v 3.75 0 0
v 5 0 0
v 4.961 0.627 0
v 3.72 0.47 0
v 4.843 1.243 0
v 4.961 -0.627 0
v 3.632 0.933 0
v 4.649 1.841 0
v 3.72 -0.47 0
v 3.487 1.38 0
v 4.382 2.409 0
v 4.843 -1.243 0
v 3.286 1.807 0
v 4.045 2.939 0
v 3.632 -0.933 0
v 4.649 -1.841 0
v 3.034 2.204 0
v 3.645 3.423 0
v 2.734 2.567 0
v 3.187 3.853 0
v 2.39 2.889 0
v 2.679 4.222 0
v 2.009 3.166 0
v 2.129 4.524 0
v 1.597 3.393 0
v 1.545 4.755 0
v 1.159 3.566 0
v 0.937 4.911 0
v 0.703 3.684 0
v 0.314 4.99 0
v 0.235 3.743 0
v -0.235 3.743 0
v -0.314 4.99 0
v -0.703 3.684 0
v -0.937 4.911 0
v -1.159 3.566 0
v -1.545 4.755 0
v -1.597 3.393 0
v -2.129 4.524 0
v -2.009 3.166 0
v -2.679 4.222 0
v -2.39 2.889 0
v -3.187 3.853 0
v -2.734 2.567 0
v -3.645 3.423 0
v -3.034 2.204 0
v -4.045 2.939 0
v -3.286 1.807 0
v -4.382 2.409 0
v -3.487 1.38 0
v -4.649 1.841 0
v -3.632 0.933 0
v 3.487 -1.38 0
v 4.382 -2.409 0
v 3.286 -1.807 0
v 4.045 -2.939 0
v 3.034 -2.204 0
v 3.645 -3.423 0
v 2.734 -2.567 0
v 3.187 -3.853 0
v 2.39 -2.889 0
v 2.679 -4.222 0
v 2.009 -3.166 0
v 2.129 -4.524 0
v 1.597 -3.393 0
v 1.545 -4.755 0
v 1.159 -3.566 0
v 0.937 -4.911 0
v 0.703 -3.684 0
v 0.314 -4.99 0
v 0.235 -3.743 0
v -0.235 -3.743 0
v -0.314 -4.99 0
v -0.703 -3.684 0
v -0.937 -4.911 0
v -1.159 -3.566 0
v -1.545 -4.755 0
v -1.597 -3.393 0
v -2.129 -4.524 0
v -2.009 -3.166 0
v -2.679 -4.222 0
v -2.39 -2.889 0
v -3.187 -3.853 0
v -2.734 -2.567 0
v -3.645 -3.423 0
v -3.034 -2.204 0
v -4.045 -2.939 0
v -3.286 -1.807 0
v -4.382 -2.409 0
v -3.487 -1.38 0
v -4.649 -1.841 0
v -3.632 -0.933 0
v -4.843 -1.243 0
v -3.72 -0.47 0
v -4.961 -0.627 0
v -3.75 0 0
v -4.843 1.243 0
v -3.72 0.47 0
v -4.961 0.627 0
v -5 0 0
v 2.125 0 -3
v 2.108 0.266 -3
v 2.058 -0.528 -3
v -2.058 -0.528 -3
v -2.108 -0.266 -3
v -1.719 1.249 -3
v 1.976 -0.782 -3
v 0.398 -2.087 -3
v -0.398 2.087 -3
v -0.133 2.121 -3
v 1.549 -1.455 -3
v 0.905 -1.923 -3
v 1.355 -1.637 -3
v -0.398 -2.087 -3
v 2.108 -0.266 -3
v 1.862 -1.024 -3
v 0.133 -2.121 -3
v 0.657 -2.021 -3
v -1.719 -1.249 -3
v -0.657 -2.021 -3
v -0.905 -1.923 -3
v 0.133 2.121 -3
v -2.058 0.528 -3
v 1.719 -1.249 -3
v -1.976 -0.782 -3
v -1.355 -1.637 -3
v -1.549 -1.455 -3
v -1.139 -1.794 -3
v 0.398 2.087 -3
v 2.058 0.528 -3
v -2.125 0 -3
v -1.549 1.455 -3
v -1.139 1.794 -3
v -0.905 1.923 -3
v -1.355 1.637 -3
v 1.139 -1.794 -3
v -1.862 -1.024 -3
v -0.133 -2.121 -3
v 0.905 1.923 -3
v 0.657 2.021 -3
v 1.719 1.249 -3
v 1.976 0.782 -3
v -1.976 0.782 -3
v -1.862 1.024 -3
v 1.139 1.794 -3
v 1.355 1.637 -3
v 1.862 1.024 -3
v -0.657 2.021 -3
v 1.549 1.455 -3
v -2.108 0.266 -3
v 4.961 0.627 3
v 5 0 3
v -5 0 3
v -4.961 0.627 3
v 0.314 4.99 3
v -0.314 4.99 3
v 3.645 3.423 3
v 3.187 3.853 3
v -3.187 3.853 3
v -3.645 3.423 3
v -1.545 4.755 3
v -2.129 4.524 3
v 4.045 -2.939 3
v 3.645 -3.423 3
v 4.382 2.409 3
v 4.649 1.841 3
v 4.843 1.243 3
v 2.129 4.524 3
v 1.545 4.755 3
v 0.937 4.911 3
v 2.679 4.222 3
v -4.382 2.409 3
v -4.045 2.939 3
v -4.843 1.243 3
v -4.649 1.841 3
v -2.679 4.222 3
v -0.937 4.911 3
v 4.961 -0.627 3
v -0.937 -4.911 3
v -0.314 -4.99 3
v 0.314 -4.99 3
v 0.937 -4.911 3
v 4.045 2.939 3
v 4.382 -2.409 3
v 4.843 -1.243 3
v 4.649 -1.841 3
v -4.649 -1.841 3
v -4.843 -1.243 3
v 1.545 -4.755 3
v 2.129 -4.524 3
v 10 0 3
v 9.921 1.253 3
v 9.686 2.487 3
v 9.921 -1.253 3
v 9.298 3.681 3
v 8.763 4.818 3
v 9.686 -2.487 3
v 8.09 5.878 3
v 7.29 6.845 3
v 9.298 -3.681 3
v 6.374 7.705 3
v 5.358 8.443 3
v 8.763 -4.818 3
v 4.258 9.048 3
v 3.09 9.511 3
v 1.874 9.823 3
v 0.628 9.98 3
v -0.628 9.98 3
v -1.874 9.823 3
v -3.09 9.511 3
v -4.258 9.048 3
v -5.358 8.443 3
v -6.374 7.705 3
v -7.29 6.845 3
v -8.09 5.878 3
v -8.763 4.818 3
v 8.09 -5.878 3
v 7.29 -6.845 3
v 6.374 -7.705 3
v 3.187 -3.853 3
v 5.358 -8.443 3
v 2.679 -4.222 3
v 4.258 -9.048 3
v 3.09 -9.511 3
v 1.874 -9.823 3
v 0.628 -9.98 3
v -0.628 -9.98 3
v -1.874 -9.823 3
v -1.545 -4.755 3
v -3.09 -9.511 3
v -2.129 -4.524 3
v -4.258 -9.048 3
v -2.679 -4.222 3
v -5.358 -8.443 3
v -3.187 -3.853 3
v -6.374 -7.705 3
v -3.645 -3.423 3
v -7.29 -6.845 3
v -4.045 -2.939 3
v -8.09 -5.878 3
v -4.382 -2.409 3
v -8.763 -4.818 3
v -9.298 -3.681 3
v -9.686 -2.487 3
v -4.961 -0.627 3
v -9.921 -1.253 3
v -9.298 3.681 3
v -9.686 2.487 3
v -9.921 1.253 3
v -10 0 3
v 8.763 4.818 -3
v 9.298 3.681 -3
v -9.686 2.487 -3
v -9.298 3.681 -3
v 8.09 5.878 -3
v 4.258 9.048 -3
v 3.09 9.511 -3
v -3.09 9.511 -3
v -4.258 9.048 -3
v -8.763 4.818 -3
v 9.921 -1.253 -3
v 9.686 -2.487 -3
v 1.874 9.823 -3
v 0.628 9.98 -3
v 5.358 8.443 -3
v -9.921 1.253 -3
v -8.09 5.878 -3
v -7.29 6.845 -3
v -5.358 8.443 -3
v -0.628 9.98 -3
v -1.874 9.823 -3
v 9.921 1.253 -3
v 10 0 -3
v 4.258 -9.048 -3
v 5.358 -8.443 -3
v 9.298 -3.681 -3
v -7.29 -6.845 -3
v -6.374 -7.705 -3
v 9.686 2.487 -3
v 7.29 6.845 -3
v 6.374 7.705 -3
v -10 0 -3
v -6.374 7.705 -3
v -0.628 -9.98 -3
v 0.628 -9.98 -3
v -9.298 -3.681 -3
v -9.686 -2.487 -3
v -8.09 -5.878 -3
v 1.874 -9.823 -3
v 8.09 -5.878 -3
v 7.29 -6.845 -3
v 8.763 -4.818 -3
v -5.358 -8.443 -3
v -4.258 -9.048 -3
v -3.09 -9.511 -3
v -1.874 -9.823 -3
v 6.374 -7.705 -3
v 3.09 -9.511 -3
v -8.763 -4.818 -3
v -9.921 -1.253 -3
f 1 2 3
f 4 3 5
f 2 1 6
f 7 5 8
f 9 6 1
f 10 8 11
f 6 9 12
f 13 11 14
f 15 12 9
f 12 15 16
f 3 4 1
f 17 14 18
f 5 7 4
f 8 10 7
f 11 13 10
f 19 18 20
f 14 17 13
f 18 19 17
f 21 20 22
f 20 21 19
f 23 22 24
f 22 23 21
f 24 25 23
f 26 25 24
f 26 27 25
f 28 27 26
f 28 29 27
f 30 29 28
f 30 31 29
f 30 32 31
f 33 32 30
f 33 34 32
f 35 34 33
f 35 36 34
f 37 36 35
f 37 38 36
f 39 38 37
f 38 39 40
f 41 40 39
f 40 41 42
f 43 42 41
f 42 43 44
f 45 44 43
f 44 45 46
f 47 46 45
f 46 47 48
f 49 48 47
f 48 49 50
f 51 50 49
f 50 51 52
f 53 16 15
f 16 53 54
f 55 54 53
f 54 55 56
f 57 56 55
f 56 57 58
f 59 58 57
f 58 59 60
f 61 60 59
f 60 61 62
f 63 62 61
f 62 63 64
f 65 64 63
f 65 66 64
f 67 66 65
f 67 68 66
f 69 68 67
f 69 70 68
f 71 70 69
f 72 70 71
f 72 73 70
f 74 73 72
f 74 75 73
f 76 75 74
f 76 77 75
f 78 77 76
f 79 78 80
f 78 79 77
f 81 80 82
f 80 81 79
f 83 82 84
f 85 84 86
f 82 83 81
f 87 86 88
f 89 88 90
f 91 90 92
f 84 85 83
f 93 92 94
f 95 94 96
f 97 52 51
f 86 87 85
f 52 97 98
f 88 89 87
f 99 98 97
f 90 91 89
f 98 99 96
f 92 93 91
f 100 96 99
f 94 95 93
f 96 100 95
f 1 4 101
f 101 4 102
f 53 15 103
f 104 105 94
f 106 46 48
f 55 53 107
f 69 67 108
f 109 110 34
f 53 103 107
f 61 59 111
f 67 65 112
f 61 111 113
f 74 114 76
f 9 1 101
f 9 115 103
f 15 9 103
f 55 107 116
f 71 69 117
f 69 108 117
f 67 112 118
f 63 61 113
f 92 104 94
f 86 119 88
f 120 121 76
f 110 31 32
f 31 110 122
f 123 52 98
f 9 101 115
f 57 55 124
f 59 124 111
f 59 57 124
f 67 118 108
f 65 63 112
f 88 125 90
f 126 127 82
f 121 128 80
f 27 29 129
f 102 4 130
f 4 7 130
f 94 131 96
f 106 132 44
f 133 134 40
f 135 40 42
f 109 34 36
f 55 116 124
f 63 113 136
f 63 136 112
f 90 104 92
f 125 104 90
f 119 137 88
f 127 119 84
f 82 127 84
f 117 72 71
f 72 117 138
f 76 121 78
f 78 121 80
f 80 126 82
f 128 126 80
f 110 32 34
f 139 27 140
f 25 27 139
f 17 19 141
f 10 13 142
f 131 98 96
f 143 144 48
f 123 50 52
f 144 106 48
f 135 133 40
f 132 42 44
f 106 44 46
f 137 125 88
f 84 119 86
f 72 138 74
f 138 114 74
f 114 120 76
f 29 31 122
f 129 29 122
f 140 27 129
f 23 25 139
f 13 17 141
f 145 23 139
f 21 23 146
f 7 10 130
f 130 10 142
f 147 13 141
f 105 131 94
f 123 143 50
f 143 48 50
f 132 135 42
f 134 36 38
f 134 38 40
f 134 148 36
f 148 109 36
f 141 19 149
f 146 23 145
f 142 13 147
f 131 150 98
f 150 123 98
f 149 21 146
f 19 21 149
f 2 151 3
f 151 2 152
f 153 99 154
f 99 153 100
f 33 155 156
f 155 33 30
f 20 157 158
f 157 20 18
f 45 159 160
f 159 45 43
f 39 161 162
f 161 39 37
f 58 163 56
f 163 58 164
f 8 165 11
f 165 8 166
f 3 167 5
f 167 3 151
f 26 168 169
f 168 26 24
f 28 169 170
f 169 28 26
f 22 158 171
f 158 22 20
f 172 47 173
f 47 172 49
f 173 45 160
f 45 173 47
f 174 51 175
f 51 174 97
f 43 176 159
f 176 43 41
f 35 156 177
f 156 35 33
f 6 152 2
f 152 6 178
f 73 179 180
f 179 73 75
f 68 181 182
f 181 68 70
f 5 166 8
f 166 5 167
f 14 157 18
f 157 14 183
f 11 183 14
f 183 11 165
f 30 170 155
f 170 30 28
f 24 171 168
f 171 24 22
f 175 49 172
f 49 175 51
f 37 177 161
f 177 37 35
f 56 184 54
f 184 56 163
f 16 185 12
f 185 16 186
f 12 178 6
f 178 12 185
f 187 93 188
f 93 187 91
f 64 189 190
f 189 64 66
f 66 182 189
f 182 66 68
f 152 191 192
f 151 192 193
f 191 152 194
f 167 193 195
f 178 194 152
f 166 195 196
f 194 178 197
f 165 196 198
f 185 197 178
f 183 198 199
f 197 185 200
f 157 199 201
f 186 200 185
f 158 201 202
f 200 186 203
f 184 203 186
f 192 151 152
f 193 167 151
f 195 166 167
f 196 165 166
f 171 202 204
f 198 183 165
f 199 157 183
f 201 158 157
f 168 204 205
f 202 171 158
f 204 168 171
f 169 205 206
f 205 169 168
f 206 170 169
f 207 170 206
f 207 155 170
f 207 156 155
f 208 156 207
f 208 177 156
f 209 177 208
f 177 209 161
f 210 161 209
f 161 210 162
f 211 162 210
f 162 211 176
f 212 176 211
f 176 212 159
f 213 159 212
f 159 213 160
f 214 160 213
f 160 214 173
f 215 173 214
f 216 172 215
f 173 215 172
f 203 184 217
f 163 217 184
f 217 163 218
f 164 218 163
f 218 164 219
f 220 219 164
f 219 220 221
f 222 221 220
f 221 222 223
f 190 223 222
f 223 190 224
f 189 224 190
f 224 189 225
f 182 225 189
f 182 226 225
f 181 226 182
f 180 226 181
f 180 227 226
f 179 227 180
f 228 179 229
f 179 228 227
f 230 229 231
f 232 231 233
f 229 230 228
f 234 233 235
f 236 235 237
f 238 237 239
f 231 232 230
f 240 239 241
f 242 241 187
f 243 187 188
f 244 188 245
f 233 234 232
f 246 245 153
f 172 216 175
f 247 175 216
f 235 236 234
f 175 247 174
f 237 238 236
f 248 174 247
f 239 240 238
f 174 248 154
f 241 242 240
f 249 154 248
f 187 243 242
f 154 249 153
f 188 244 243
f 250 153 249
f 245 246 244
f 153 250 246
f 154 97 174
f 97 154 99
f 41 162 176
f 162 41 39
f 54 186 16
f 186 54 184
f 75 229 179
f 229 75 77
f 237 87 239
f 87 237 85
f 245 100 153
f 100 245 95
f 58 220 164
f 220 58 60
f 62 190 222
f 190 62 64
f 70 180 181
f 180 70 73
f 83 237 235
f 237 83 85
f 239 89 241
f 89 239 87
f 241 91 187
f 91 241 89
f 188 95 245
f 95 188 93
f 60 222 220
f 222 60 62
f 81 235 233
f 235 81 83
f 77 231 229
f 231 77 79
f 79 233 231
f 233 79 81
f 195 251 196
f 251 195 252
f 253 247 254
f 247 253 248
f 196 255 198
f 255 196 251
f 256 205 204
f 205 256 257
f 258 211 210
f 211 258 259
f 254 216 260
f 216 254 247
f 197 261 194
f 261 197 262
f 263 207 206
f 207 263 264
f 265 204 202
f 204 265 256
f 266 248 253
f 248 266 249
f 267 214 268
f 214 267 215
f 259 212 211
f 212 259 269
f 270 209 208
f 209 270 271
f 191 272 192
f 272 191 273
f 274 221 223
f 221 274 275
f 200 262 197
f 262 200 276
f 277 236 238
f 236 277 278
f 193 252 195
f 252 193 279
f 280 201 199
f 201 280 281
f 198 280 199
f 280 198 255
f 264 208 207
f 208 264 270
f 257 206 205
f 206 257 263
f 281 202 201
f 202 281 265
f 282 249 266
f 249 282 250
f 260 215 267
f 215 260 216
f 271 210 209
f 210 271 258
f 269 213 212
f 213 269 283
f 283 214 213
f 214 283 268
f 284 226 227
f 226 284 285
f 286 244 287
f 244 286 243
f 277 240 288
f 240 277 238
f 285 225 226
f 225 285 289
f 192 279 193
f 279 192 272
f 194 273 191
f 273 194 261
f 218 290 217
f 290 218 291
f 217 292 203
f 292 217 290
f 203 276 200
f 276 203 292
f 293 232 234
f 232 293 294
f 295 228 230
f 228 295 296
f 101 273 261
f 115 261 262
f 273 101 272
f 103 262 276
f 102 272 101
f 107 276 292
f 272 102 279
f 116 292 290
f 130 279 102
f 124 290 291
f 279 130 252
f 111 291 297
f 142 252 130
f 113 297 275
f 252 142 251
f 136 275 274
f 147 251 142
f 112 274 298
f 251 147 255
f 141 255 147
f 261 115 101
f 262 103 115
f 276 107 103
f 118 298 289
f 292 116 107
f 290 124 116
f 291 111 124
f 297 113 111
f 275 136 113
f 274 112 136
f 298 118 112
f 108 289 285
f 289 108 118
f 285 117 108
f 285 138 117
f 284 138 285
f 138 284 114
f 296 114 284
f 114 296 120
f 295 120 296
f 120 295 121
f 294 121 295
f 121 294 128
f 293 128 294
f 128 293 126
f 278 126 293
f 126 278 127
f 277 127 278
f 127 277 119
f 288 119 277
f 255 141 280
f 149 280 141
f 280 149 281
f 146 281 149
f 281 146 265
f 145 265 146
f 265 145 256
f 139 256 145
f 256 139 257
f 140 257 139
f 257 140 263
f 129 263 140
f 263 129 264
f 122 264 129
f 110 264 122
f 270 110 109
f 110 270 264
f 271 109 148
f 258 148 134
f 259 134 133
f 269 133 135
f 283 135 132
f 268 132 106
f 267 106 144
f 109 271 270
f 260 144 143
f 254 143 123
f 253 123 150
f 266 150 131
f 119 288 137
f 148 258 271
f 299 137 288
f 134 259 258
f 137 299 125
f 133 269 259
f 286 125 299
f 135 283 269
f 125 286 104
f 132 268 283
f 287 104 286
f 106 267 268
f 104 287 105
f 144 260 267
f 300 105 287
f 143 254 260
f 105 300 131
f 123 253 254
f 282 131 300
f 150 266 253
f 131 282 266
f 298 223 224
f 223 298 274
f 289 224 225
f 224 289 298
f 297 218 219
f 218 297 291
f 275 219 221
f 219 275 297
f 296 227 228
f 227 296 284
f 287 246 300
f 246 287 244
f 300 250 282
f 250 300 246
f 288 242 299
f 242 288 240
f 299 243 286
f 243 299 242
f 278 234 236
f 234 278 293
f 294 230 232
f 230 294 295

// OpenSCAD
$fn = 50;


difference() {
	union() {
		translate(v = [0, 0, -3.0000000000]) {
			cylinder(h = 6, r = 10.0000000000);
		}
	}
	union() {
		translate(v = [0, 0, 0]) {
			rotate(a = [0, 0, 0]) {
				difference() {
					union() {
						translate(v = [0, 0, -6.0000000000]) {
							cylinder(h = 6, r = 2.0000000000);
						}
						translate(v = [0, 0, -3]) {
							cylinder(h = 3, r1 = 2.1250000000, r2 = 3.7500000000);
						}
						translate(v = [0, 0, -6.0000000000]) {
							cylinder(h = 6, r = 2.1250000000);
						}
						translate(v = [0, 0, -6.0000000000]) {
							cylinder(h = 6, r = 2.0000000000);
						}
					}
					union();
				}
			}
		}
		#cylinder(h = 3, r = 5.0000000000);
	}
}
